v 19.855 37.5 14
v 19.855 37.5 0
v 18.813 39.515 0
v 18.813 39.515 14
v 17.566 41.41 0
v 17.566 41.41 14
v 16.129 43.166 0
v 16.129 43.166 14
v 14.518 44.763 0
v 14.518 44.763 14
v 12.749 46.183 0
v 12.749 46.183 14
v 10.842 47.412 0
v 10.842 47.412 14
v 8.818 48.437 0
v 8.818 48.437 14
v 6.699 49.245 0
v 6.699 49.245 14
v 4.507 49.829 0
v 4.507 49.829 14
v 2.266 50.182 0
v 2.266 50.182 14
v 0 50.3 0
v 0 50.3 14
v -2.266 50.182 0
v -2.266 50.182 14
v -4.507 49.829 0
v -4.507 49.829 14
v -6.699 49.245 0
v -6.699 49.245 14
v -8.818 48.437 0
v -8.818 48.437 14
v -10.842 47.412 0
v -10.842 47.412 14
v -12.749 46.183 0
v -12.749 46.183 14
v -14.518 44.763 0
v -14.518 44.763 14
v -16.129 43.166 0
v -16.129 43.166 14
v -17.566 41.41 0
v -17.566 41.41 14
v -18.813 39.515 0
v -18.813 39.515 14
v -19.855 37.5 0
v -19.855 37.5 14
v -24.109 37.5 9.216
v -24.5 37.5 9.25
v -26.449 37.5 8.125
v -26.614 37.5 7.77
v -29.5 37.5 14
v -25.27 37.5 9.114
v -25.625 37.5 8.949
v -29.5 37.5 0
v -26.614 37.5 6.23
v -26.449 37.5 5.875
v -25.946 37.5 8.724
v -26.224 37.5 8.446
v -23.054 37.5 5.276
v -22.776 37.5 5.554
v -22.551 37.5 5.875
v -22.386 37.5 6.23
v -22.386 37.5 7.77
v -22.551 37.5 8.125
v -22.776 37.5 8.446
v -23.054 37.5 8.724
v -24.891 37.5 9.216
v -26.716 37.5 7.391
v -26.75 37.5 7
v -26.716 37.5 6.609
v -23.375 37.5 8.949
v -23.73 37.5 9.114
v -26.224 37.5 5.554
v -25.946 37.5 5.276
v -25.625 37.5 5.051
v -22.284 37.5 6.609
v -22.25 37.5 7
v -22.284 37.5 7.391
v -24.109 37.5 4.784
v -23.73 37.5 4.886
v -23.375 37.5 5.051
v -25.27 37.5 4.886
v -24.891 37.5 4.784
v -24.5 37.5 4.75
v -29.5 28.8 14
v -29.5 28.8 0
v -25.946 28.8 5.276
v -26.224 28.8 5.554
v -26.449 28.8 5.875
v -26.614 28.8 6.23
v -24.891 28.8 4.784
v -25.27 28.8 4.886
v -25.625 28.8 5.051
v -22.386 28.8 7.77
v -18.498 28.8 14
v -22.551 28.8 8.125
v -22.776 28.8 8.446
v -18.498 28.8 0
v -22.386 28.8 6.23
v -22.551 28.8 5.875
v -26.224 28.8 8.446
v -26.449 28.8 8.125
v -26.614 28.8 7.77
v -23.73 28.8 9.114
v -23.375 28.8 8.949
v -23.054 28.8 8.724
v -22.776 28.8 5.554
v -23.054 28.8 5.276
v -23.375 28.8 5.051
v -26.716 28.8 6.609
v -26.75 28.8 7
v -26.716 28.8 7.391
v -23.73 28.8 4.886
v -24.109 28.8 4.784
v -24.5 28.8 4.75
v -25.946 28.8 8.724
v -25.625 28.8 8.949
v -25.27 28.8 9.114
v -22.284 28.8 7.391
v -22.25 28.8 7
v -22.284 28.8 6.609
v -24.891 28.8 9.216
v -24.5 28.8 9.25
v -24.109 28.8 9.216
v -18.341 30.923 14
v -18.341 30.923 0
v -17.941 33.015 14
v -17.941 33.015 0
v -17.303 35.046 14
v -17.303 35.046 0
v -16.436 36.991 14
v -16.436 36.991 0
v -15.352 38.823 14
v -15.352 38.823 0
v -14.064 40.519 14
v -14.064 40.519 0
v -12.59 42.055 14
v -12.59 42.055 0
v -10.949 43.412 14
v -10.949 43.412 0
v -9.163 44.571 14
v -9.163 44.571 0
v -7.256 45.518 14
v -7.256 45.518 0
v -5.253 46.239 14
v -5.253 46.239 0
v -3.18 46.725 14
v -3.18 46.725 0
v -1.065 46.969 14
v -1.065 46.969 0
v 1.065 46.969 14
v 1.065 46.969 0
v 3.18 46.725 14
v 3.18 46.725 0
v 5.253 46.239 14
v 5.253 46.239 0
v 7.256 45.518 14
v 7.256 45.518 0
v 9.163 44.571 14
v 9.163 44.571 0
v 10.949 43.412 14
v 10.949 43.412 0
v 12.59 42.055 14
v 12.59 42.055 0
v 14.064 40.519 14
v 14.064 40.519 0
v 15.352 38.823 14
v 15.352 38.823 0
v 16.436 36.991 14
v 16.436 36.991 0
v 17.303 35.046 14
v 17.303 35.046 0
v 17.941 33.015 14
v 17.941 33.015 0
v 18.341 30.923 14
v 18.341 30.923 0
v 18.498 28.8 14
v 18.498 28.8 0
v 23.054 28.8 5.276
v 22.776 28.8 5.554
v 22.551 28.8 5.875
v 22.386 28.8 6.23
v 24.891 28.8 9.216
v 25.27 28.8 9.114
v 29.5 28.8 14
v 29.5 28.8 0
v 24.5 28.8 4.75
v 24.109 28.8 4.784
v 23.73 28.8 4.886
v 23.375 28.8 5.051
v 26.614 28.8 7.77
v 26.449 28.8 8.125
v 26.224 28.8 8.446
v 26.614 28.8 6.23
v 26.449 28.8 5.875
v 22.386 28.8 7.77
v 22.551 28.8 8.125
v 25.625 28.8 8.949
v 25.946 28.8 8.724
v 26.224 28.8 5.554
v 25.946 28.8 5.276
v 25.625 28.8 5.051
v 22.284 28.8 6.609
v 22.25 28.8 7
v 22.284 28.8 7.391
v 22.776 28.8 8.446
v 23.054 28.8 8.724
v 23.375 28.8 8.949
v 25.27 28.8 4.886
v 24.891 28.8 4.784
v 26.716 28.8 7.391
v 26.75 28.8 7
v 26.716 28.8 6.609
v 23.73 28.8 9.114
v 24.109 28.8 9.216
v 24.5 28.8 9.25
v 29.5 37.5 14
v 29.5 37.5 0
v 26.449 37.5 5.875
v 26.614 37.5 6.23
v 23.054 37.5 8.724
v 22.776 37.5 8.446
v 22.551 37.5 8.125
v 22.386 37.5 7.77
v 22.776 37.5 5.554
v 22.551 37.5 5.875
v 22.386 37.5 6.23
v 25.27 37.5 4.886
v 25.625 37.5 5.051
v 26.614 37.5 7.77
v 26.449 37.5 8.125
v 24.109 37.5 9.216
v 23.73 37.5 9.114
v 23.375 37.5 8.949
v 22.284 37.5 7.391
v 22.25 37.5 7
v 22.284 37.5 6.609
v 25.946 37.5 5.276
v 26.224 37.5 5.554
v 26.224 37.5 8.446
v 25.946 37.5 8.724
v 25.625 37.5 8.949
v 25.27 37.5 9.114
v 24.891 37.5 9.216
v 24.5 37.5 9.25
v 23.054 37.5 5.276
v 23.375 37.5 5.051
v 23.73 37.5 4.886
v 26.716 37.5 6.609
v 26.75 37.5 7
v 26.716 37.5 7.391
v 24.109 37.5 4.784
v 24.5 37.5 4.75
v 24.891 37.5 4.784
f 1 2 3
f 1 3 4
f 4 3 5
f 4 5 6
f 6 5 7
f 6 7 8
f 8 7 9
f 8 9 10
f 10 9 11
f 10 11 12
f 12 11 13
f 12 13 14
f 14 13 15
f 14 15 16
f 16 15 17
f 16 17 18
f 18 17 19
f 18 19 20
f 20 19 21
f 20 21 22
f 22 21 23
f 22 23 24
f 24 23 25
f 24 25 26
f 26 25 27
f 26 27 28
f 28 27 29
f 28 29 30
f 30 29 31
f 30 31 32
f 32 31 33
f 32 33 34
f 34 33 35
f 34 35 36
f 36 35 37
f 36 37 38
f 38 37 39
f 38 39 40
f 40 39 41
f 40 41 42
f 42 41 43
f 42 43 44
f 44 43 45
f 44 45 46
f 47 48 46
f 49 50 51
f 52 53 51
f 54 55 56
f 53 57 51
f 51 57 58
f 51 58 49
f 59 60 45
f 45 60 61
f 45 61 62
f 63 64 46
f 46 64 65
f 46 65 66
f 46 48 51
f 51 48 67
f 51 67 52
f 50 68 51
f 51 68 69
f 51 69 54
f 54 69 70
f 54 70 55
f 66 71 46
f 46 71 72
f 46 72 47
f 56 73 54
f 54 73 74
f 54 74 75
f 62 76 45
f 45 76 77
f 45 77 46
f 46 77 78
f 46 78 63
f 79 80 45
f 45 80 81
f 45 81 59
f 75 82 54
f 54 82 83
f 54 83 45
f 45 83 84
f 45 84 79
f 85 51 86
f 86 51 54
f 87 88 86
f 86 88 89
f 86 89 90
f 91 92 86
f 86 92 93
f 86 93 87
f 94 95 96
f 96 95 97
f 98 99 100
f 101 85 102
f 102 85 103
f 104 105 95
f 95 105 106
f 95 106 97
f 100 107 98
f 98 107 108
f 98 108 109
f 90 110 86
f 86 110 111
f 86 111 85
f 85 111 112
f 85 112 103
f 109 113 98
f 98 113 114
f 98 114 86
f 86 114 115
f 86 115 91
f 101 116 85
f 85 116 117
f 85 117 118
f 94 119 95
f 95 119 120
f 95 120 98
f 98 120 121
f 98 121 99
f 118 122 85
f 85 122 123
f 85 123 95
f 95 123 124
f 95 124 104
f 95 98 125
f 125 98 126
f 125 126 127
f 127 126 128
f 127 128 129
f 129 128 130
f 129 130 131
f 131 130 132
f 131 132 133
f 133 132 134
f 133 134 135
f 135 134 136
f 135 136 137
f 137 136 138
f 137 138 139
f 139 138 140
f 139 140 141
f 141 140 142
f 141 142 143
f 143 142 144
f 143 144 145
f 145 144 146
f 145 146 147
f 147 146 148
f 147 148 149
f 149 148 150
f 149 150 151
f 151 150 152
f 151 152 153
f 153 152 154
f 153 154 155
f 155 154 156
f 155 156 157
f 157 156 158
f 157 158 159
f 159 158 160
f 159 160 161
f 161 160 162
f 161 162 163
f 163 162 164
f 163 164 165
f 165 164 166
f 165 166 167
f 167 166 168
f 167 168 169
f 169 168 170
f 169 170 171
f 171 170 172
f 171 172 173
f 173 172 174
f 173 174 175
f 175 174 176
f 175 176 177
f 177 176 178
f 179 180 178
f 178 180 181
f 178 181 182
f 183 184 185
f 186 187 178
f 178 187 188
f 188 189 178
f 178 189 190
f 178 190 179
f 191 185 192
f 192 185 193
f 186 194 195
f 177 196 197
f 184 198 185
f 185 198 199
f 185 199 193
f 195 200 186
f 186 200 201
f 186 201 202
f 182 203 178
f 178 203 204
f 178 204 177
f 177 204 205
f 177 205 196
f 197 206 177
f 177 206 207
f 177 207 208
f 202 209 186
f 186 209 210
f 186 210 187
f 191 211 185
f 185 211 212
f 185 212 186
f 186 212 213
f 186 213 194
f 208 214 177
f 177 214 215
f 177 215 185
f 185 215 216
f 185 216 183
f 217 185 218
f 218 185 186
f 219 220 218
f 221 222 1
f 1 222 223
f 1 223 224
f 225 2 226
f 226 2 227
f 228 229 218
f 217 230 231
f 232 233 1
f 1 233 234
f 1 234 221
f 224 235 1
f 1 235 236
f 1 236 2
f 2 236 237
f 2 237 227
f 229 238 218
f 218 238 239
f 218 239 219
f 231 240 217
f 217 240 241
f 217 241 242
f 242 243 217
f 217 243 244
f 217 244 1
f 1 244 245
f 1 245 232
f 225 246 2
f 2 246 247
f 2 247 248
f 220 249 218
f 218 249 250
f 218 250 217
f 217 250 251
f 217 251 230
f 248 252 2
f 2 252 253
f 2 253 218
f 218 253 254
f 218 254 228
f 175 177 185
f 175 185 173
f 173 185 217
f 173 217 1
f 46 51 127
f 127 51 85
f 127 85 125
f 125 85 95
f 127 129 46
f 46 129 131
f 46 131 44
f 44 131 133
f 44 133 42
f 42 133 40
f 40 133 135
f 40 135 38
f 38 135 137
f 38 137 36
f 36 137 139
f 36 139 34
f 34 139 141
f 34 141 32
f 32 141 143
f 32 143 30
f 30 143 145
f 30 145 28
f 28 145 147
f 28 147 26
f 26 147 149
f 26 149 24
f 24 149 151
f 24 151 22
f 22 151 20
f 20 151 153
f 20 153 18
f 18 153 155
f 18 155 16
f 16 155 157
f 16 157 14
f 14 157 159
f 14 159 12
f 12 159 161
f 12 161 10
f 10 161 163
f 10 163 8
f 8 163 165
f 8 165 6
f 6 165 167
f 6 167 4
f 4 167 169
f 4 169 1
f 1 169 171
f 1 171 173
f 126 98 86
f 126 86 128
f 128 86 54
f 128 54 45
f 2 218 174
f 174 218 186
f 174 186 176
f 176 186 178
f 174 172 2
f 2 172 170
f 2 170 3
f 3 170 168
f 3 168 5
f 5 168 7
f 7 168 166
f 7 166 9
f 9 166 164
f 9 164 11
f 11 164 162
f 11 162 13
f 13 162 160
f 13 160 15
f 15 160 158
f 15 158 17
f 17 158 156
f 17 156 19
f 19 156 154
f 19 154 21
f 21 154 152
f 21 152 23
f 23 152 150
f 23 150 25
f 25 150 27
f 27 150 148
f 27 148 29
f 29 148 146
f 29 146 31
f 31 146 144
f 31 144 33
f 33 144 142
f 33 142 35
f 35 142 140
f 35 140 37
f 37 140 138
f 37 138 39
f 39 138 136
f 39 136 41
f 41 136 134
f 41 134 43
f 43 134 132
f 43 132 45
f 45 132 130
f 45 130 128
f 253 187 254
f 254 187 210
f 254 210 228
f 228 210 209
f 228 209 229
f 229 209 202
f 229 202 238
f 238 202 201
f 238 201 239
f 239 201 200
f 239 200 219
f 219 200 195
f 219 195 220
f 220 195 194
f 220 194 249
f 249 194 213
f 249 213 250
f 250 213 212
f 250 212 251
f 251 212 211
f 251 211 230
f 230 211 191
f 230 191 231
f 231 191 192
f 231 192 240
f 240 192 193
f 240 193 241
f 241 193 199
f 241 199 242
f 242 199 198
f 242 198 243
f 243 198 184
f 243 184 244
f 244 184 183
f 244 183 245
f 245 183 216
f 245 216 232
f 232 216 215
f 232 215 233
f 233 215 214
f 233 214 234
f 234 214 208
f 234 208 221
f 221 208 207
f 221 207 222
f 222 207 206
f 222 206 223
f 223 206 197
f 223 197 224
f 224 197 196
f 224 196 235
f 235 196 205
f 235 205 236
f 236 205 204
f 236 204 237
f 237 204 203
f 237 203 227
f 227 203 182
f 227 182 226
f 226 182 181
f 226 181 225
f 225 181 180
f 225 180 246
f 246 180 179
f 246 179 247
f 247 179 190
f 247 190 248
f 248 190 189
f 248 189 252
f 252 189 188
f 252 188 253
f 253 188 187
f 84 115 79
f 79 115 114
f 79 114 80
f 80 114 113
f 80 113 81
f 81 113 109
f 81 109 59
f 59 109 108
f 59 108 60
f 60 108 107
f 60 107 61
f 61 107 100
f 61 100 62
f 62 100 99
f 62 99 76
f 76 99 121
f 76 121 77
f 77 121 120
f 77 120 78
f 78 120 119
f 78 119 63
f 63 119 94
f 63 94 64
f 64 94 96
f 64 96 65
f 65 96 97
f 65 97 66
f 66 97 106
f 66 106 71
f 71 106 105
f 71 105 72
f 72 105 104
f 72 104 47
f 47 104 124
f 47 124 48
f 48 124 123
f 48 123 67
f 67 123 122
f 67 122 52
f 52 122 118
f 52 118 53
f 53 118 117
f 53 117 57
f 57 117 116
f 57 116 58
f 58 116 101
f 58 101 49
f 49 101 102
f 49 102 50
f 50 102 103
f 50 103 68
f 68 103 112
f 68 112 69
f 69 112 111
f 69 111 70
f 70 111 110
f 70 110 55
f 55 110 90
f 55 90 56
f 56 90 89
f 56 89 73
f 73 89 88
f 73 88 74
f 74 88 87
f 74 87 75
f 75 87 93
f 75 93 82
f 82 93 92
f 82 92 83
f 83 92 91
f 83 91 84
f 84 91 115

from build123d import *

# Parameters (mm, degrees)
SPLIT_CAP_WITH_RAISED_FLAT_WASHER_SEATS_DEPTH = 14
M4_THROUGH_HOLES_DEPTH                        = 60.969492244
M4_THROUGH_HOLES_DEPTH_BACK                   = 60.969492244
SKETCH2_R                                     = 2.25


with BuildPart() as part:
    # Split cap with raised flat washer se 2 → Split cap with raised flat washer seats (new body)
    with BuildSketch(Plane.XY):
        with BuildLine():
            Line((19.855477834, 37.5), (29.5, 37.5))
            Line((29.5, 37.5), (29.5, 28.8))
            Line((29.5, 28.8), (18.497567408, 28.8))
            ThreePointArc((18.497567408, 28.8), (0, 47), (-18.497567408, 28.8))
            Line((-18.497567408, 28.8), (-29.5, 28.8))
            Line((-29.5, 28.8), (-29.5, 37.5))
            Line((-29.5, 37.5), (-19.855477834, 37.5))
            ThreePointArc((-19.855477834, 37.5), (0, 50.3), (19.855477834, 37.5))
        make_face()
    extrude(amount=SPLIT_CAP_WITH_RAISED_FLAT_WASHER_SEATS_DEPTH)

    # Sketch2 → M4 through holes (cut, two sides: drawn at the far end of the back side and taken through both)
    with BuildSketch(Plane(origin=(0, 0, 0), x_dir=(1, 0, 0), z_dir=(0, 1, 0)).offset(-M4_THROUGH_HOLES_DEPTH_BACK)):
        with Locations(Location((-24.5, -7, 0), (0, 0, 90))):
            Circle(SKETCH2_R)
        with Locations(Location((24.5, -7, 0), (0, 0, 90))):
            Circle(SKETCH2_R)
    extrude(amount=M4_THROUGH_HOLES_DEPTH + M4_THROUGH_HOLES_DEPTH_BACK, mode=Mode.SUBTRACT)


solid = part.part
